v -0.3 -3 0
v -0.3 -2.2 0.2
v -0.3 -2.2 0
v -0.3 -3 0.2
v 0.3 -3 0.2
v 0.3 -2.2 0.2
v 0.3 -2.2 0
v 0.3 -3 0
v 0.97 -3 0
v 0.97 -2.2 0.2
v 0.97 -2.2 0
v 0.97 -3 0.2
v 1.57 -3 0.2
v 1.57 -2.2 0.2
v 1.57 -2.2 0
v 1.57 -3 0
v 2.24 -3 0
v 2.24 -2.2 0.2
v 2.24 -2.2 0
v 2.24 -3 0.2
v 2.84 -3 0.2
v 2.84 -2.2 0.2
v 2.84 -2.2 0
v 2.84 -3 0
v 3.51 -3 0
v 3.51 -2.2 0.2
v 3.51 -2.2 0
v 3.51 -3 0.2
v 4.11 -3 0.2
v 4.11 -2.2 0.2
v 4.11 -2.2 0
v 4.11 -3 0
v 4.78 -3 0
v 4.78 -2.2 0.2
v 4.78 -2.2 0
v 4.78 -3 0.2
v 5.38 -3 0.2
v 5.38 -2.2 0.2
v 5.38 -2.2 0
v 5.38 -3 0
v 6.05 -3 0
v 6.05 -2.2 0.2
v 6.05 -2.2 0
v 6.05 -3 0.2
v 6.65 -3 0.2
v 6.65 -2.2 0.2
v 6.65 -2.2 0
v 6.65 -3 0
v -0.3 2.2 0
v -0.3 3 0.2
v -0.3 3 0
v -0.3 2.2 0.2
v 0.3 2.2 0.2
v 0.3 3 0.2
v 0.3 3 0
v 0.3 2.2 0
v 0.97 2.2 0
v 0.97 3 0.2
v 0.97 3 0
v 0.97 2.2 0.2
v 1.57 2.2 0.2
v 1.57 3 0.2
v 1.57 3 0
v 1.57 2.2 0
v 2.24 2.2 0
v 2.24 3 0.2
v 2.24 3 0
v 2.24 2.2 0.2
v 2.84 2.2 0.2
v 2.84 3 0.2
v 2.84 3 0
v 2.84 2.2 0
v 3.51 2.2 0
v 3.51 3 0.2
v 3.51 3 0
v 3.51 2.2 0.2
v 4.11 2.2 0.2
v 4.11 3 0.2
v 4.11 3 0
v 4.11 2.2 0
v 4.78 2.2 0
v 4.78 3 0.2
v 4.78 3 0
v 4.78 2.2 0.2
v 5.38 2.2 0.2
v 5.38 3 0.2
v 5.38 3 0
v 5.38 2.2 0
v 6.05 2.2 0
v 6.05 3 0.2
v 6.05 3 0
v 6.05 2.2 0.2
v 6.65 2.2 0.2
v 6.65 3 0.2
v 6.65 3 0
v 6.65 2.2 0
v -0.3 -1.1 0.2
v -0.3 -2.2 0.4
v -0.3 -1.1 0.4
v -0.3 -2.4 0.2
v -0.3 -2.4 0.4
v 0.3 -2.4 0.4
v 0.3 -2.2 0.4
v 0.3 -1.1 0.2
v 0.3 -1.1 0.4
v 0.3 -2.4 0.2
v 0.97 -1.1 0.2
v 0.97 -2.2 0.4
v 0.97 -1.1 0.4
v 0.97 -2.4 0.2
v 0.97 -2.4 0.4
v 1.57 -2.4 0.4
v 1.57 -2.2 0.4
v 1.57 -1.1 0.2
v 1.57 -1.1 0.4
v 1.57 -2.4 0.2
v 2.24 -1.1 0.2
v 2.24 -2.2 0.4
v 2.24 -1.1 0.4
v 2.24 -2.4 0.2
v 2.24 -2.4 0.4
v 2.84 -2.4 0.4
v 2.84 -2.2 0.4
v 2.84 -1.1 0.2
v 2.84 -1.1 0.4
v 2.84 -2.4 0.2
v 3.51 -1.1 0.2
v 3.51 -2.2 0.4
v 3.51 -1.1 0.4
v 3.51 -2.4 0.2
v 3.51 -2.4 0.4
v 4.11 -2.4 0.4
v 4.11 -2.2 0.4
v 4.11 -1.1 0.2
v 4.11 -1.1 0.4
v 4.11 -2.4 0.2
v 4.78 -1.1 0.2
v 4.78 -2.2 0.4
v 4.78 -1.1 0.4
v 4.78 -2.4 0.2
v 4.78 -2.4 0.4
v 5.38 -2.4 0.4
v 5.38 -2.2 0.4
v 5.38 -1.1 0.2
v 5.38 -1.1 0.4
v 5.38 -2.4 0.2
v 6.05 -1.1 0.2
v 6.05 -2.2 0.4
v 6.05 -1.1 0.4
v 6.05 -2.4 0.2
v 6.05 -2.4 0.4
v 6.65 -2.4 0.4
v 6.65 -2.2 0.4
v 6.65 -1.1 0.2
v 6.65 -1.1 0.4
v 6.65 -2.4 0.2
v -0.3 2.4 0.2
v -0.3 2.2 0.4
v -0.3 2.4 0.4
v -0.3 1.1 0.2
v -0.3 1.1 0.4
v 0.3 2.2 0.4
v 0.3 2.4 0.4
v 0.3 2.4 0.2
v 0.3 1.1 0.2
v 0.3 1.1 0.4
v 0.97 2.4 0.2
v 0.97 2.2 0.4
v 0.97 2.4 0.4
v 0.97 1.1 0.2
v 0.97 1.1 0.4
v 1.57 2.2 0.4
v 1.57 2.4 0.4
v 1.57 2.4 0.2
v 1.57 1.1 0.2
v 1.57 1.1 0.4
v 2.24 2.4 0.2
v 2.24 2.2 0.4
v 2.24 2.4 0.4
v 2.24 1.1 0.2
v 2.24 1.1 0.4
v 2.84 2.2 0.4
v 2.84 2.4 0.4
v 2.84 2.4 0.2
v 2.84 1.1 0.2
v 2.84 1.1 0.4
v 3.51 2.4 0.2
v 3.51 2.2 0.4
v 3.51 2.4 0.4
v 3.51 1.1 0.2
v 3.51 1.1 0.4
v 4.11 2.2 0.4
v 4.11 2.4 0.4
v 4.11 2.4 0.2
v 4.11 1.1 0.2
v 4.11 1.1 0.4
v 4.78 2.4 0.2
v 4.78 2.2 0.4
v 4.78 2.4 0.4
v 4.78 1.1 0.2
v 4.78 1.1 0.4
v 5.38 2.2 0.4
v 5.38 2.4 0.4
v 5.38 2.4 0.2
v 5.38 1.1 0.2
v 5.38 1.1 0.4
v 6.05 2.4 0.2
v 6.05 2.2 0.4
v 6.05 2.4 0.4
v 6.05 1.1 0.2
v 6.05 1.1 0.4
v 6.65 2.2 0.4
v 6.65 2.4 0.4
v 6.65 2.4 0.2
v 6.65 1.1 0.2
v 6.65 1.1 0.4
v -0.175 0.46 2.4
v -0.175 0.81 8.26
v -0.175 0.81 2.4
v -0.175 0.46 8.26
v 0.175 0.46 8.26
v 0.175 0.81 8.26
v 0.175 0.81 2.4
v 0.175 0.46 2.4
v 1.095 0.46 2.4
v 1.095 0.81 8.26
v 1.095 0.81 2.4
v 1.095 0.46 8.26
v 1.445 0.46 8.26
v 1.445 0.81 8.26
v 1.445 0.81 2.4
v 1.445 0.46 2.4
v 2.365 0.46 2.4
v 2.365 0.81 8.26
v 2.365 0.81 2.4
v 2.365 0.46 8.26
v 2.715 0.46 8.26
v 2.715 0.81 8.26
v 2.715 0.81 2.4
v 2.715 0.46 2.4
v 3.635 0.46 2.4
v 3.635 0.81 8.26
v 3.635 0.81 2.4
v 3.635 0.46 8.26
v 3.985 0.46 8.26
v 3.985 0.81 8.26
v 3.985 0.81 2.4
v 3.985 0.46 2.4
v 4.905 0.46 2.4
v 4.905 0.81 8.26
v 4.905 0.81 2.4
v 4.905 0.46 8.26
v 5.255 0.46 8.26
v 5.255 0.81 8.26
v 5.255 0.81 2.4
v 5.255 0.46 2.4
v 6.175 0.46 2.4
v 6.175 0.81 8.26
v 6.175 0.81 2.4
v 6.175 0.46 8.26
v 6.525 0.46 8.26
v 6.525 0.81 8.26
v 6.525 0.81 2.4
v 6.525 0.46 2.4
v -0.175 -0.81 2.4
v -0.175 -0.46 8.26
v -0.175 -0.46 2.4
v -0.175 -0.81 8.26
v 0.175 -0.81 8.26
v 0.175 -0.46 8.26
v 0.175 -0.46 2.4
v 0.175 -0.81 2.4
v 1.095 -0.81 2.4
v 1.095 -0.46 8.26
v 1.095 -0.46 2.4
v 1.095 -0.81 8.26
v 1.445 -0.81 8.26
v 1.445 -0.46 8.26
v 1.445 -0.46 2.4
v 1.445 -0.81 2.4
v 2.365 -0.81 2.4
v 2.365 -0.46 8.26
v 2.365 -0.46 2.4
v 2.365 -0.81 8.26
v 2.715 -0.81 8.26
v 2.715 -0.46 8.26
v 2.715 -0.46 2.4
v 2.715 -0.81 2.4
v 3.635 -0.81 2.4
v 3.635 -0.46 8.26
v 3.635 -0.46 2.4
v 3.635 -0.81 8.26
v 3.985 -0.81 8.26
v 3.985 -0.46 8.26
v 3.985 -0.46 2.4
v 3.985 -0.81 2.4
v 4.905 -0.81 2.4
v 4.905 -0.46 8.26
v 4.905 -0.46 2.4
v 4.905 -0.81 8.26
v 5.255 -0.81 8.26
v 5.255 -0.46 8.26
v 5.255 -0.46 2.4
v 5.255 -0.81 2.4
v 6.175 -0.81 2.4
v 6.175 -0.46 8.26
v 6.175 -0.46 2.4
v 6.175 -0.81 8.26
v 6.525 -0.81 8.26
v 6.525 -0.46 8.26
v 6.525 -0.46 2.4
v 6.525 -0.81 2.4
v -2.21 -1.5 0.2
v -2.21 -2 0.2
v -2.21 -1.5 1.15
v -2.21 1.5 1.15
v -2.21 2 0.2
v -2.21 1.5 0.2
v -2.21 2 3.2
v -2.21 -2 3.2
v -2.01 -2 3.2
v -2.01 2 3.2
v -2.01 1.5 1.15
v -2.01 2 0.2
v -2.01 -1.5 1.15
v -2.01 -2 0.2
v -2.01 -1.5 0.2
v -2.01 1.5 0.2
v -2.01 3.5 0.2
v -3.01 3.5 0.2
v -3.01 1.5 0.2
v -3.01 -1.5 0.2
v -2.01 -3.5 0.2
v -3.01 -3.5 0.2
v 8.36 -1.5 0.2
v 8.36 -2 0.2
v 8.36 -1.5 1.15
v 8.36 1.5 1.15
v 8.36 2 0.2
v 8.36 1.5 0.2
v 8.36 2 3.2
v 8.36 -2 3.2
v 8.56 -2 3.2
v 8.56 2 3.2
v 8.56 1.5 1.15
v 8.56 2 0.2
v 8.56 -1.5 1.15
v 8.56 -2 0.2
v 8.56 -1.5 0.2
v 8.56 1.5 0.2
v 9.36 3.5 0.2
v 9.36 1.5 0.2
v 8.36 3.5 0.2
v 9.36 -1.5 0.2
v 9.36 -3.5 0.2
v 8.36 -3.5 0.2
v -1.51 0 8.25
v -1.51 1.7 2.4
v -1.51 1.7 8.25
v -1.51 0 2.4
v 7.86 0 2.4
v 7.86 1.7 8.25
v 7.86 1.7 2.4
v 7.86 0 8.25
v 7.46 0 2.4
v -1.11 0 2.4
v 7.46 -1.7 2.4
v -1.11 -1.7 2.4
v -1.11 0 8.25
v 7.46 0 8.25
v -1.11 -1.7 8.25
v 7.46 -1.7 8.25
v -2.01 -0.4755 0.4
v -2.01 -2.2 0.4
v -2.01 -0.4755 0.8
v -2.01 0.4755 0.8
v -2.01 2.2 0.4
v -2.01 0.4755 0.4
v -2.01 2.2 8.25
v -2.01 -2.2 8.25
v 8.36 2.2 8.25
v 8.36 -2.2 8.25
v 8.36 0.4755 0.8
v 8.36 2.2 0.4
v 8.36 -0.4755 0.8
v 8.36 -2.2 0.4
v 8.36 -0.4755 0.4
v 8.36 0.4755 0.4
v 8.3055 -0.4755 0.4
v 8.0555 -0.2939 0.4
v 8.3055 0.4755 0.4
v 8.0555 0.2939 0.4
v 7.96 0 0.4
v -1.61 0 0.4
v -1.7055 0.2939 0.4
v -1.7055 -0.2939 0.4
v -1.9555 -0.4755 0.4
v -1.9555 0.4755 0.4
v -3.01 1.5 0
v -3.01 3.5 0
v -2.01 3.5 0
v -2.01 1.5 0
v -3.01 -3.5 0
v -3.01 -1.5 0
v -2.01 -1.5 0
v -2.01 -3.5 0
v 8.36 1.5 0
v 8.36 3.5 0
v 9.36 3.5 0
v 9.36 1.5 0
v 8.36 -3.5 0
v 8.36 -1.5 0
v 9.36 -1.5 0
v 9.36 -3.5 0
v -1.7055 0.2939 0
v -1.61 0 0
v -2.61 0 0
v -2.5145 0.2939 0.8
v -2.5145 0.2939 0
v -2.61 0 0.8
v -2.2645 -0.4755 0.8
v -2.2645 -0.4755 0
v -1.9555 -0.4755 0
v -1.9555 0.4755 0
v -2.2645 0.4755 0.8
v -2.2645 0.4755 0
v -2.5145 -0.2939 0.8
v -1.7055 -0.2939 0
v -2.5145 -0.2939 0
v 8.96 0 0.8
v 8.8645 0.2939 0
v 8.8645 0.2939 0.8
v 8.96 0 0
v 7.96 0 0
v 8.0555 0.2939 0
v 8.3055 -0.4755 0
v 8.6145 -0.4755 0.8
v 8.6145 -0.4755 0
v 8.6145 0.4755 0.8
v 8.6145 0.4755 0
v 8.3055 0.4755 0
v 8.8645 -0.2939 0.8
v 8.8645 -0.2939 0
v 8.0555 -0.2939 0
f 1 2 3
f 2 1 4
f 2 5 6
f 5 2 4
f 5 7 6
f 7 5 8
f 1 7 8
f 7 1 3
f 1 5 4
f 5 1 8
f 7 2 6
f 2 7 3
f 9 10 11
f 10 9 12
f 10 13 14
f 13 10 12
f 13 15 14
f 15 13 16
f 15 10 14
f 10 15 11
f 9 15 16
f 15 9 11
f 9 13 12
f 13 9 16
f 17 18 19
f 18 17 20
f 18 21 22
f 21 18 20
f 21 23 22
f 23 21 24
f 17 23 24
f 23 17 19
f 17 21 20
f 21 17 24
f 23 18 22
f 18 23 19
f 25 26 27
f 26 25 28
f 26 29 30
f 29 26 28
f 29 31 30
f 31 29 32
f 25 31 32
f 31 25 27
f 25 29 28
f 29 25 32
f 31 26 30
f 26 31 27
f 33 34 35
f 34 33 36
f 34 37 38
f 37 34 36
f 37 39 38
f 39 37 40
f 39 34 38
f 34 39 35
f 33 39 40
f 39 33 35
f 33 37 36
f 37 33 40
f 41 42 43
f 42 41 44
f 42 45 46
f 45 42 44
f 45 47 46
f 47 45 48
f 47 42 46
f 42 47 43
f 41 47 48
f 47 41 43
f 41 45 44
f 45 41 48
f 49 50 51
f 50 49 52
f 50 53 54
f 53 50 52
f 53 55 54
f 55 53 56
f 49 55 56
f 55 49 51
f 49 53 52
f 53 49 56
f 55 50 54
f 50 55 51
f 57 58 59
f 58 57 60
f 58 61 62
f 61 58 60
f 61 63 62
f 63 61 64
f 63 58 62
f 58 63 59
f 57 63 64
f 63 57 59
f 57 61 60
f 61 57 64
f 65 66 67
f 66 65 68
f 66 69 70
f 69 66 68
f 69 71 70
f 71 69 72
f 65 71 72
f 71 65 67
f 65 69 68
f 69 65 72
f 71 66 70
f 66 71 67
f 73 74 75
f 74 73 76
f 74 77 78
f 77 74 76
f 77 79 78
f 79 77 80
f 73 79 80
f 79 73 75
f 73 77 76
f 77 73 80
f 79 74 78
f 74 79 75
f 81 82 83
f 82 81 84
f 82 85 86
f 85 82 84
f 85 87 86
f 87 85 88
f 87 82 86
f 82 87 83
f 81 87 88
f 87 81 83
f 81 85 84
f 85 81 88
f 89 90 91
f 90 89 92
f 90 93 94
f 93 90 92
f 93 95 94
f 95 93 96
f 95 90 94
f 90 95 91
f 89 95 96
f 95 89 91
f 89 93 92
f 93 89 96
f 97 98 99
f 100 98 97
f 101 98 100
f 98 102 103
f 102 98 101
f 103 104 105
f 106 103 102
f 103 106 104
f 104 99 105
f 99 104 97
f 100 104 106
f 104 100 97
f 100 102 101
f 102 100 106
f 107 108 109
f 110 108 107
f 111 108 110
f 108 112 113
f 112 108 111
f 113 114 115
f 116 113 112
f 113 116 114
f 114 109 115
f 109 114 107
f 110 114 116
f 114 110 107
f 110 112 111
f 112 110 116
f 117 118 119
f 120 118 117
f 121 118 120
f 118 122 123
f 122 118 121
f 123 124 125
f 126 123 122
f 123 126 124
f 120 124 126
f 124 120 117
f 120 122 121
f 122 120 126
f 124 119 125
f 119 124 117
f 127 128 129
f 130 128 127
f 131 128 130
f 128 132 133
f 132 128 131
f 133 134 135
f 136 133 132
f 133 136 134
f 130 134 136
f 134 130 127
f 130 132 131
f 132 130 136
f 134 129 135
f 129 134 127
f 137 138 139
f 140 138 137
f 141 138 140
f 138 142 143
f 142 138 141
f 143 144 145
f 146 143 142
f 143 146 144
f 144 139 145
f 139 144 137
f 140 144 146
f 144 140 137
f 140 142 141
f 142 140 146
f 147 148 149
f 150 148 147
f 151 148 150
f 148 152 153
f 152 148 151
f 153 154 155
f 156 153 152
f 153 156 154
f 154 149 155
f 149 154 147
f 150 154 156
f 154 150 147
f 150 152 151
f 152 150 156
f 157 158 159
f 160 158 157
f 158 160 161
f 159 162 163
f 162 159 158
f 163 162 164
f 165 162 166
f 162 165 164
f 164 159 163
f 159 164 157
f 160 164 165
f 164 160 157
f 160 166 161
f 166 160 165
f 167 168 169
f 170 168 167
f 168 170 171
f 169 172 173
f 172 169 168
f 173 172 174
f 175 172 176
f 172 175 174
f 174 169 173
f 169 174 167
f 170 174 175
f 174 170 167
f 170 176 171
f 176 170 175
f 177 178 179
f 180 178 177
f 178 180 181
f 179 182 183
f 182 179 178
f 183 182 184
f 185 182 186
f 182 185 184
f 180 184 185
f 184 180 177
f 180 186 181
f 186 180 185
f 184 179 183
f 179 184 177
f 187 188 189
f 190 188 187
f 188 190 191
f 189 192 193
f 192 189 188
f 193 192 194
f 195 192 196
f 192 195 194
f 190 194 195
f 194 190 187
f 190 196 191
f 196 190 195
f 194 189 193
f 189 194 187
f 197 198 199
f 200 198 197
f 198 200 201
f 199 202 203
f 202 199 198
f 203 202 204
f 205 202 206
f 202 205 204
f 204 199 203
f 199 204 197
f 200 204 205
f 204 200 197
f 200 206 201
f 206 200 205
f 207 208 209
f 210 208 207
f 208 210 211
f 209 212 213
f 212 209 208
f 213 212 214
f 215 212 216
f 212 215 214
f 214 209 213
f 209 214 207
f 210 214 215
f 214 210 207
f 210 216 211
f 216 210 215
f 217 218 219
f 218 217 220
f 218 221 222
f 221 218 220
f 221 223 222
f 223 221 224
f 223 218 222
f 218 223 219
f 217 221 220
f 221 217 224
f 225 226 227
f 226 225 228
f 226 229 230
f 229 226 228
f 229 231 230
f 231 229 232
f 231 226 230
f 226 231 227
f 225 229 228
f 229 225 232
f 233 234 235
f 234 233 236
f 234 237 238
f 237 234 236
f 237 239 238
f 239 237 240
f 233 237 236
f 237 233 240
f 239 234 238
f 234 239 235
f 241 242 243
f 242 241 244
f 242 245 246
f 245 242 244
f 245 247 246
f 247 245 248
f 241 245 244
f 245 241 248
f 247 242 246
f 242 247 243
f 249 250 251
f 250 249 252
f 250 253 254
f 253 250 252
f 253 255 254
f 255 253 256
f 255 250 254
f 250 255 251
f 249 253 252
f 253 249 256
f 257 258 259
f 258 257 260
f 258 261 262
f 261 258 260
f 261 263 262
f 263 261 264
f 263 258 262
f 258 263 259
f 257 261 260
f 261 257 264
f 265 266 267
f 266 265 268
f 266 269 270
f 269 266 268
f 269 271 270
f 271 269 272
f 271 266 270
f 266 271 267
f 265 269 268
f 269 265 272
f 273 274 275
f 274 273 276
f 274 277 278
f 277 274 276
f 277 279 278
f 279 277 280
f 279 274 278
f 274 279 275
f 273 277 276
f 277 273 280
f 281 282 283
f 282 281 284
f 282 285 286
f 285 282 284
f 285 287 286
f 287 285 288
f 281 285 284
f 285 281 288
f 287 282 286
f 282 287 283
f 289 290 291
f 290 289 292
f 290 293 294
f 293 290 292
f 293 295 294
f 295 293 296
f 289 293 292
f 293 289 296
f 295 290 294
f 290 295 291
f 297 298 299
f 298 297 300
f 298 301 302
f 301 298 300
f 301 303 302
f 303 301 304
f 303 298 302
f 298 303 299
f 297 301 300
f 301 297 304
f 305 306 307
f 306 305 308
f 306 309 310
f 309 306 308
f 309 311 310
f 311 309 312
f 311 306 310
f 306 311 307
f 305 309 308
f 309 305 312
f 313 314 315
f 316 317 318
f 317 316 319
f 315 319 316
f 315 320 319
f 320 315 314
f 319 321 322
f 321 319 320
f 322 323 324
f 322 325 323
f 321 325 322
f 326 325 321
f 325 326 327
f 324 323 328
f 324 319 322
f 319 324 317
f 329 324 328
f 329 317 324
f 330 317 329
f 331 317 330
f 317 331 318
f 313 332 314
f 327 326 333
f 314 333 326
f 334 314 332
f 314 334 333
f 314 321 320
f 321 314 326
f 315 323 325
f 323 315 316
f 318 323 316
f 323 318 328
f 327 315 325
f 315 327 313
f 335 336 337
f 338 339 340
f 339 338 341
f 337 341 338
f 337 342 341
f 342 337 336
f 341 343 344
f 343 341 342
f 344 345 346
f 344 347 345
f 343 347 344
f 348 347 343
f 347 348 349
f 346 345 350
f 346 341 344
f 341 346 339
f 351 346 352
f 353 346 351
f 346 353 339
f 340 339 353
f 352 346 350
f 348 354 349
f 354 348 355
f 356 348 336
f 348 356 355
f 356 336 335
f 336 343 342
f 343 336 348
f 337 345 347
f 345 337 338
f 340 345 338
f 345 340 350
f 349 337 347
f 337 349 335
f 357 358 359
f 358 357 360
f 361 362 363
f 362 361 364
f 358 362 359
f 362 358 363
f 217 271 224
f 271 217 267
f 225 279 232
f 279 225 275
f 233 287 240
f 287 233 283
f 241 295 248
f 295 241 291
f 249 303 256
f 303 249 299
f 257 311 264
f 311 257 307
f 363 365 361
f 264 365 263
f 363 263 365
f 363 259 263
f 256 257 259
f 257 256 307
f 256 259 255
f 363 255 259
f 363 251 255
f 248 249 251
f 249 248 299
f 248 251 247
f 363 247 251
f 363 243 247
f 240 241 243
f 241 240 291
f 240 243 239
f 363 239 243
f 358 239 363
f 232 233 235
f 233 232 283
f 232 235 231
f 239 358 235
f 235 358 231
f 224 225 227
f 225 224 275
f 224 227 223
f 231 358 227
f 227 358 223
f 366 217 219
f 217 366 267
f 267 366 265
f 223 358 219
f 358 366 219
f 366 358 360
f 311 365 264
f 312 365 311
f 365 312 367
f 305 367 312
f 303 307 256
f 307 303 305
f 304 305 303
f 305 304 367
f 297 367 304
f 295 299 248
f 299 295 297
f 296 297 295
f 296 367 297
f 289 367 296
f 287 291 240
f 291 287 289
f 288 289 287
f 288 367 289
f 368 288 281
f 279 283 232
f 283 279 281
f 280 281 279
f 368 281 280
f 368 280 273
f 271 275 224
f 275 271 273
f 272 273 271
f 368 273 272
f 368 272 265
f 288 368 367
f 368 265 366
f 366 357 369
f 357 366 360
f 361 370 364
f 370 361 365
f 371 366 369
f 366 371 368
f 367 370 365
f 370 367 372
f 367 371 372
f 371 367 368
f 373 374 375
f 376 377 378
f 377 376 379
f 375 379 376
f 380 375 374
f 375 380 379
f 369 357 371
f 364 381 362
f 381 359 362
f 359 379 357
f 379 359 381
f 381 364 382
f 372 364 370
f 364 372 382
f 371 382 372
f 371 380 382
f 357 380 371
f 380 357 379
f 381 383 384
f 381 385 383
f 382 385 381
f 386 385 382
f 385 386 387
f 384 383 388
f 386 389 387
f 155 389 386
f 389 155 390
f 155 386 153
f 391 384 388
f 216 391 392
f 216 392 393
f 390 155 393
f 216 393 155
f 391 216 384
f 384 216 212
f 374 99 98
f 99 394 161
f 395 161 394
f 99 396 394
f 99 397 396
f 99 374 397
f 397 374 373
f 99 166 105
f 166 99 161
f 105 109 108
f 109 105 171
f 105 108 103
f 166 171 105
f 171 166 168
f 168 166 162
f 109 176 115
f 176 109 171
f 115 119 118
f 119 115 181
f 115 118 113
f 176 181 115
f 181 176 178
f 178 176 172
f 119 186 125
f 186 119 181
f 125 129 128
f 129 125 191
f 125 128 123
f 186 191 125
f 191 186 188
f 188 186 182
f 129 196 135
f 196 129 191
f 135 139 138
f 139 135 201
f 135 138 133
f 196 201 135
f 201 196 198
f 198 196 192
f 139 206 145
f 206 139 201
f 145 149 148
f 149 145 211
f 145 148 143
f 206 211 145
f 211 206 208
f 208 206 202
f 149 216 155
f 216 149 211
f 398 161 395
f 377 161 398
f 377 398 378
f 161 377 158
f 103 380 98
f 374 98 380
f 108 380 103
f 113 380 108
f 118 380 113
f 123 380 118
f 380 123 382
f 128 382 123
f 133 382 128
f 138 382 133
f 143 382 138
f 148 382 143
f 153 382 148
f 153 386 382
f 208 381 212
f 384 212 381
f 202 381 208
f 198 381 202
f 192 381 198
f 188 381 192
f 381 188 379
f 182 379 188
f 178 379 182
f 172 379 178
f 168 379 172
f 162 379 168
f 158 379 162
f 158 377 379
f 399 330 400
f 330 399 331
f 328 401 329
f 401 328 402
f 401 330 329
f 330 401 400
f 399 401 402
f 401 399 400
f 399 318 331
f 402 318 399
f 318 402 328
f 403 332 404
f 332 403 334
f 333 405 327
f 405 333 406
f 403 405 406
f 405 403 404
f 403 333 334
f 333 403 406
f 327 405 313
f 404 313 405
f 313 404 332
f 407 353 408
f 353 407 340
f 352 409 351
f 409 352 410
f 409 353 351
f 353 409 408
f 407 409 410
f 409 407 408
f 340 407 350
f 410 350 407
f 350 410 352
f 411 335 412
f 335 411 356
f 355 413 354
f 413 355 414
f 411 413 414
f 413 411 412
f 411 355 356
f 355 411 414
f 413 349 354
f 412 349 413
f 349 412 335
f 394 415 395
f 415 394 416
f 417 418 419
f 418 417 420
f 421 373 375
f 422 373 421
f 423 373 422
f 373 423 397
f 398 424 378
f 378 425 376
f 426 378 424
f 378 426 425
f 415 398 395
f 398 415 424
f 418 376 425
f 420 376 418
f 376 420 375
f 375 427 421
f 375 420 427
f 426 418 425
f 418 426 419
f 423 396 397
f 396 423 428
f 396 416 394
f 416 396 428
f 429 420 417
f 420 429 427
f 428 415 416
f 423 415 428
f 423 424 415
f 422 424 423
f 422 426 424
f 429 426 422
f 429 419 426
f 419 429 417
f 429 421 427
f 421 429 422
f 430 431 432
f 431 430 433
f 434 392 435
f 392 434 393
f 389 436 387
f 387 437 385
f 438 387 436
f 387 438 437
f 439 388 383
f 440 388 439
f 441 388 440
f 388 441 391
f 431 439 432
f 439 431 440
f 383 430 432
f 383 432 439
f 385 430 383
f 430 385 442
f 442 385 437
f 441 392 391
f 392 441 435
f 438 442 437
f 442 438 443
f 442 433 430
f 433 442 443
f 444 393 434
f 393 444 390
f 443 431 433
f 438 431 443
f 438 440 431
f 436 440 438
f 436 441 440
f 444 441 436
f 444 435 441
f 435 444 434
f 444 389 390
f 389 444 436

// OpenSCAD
pin_w_b = 0.6;
pin_t_b = 0.2;
pin_l_b = 0.8;
pin_l_b2 = 1.3;
pin_xy_t = 0.35;

ground_x_b = 1;
ground_y_b = 2;
ground_z_b = 3;
ground_off = 3;

case_x = 10.37;
case_y = 4.4;
case_z = 7.85;
case_hole1_th = 0.5;
case_hole2_th = 0.9;

cylinder_dia=1;

pin_thickness = 0.4;
pin_step = 1.27;
hor_pin_length = 2.285;

pin_height = 6;
pins_per_row = 6;

plastic_height = 2.9;
plastic_width = 3.4;

notch_width = 5.08;
window_width = 2.16;
notch_thickness = 0.8;

module pin(_x,_y,_z)
{
	translate([-_x/2,-_y/2,0])
		cube([_x,_y,_z]);
};

module pins_array_b(_cnt, _distance, _length)
{
	if (_cnt>0)
	{
		for (_i = [0:_cnt-1])
		{
			translate([_distance*_i,0,0])
				pin(pin_w_b,_length,pin_t_b);
		}
	}
}

module pins_array_t(_cnt, _distance, _length)
{
	if (_cnt>0)
	{
		for (_i = [0:_cnt-1])
		{
			translate([_distance*_i,0,0])
				pin(pin_xy_t,pin_xy_t,_length);
		}
	}
}

module pins_bottom()
{
    translate([0,-case_y/2-pin_l_b/2,0])
    union()
    {
        pins_array_b(pins_per_row,pin_step,pin_l_b);
        translate([0,case_y+pin_l_b,0])
        pins_array_b(pins_per_row,pin_step,pin_l_b);

        translate([0,pin_l_b2/2+pin_l_b/2-pin_t_b,pin_t_b])
        pins_array_b(pins_per_row,pin_step,pin_l_b2);
        translate([0,case_y+pin_l_b/2-pin_l_b2/2+pin_t_b,pin_t_b])
        pins_array_b(pins_per_row,pin_step,pin_l_b2);
    }
}

union()
{   
    // Array of bottom pins
    pins_bottom();
    translate([0,pin_step/2,pin_t_b*2+0.01])
    pins_array_t(pins_per_row,pin_step,case_z);
    translate([0,-pin_step/2,pin_t_b*2+0.01])
    pins_array_t(pins_per_row,pin_step,case_z);
    
    // Grounding pins
    translate([-(case_x-(pins_per_row-1)*pin_step)/2-ground_x_b/2,ground_y_b/2+ground_off/2,0])
    pin(ground_x_b,ground_y_b,pin_t_b);
    translate([-(case_x-(pins_per_row-1)*pin_step)/2-ground_x_b/2,-ground_y_b/2-ground_off/2,0])
    pin(ground_x_b,ground_y_b,pin_t_b);
    translate([(case_x+(pins_per_row-1)*pin_step)/2+ground_x_b/2,ground_y_b/2+ground_off/2,0])
    pin(ground_x_b,ground_y_b,pin_t_b);
    translate([(case_x+(pins_per_row-1)*pin_step)/2+ground_x_b/2,-ground_y_b/2-ground_off/2,0])
    pin(ground_x_b,ground_y_b,pin_t_b);
    // Ground sides
    translate([-(case_x-(pins_per_row-1)*pin_step)/2-pin_t_b/2,0,0])
    difference()
    {
        translate([0,0,pin_t_b])
        pin(pin_t_b,case_y-pin_t_b*2,ground_z_b);
        translate([0,0,pin_t_b-0.05])
        pin(pin_t_b+0.1,ground_off,ground_z_b/3);
    }
    translate([(case_x+(pins_per_row-1)*pin_step)/2+pin_t_b/2,0,0])
    difference()
    {
        translate([0,0,pin_t_b])
        pin(pin_t_b,case_y-pin_t_b*2,ground_z_b);
        translate([0,0,pin_t_b-0.05])
        pin(pin_t_b+0.1,ground_off,ground_z_b/3);
    }
    translate([-(case_x-(pins_per_row-1)*pin_step)/2-pin_t_b/2,0,0])
    cylinder($fn = 10,h = pin_t_b*4, d=cylinder_dia);
    translate([(case_x+(pins_per_row-1)*pin_step)/2+pin_t_b/2,0,0])
    cylinder($fn = 10,h = pin_t_b*4, d=cylinder_dia);

    // Case
    difference()
    {
    translate([-(case_x-(pins_per_row-1)*pin_step)/2,-case_y/2,pin_t_b*2])
    cube([case_x,case_y,case_z]);

    union()
    {
        translate([-(case_x-(pins_per_row-1)*pin_step)/2+case_hole1_th,0,pin_t_b*2+2])
        cube([case_x-case_hole1_th*2,case_y/2-case_hole1_th,case_z]);
        
        translate([-(case_x-(pins_per_row-1)*pin_step)/2+case_hole2_th,case_hole1_th-case_y/2,pin_t_b*2+2])
        cube([case_x-case_hole2_th*2,case_y/2-case_hole1_th+0.01,case_z]);
    }
    }
};
